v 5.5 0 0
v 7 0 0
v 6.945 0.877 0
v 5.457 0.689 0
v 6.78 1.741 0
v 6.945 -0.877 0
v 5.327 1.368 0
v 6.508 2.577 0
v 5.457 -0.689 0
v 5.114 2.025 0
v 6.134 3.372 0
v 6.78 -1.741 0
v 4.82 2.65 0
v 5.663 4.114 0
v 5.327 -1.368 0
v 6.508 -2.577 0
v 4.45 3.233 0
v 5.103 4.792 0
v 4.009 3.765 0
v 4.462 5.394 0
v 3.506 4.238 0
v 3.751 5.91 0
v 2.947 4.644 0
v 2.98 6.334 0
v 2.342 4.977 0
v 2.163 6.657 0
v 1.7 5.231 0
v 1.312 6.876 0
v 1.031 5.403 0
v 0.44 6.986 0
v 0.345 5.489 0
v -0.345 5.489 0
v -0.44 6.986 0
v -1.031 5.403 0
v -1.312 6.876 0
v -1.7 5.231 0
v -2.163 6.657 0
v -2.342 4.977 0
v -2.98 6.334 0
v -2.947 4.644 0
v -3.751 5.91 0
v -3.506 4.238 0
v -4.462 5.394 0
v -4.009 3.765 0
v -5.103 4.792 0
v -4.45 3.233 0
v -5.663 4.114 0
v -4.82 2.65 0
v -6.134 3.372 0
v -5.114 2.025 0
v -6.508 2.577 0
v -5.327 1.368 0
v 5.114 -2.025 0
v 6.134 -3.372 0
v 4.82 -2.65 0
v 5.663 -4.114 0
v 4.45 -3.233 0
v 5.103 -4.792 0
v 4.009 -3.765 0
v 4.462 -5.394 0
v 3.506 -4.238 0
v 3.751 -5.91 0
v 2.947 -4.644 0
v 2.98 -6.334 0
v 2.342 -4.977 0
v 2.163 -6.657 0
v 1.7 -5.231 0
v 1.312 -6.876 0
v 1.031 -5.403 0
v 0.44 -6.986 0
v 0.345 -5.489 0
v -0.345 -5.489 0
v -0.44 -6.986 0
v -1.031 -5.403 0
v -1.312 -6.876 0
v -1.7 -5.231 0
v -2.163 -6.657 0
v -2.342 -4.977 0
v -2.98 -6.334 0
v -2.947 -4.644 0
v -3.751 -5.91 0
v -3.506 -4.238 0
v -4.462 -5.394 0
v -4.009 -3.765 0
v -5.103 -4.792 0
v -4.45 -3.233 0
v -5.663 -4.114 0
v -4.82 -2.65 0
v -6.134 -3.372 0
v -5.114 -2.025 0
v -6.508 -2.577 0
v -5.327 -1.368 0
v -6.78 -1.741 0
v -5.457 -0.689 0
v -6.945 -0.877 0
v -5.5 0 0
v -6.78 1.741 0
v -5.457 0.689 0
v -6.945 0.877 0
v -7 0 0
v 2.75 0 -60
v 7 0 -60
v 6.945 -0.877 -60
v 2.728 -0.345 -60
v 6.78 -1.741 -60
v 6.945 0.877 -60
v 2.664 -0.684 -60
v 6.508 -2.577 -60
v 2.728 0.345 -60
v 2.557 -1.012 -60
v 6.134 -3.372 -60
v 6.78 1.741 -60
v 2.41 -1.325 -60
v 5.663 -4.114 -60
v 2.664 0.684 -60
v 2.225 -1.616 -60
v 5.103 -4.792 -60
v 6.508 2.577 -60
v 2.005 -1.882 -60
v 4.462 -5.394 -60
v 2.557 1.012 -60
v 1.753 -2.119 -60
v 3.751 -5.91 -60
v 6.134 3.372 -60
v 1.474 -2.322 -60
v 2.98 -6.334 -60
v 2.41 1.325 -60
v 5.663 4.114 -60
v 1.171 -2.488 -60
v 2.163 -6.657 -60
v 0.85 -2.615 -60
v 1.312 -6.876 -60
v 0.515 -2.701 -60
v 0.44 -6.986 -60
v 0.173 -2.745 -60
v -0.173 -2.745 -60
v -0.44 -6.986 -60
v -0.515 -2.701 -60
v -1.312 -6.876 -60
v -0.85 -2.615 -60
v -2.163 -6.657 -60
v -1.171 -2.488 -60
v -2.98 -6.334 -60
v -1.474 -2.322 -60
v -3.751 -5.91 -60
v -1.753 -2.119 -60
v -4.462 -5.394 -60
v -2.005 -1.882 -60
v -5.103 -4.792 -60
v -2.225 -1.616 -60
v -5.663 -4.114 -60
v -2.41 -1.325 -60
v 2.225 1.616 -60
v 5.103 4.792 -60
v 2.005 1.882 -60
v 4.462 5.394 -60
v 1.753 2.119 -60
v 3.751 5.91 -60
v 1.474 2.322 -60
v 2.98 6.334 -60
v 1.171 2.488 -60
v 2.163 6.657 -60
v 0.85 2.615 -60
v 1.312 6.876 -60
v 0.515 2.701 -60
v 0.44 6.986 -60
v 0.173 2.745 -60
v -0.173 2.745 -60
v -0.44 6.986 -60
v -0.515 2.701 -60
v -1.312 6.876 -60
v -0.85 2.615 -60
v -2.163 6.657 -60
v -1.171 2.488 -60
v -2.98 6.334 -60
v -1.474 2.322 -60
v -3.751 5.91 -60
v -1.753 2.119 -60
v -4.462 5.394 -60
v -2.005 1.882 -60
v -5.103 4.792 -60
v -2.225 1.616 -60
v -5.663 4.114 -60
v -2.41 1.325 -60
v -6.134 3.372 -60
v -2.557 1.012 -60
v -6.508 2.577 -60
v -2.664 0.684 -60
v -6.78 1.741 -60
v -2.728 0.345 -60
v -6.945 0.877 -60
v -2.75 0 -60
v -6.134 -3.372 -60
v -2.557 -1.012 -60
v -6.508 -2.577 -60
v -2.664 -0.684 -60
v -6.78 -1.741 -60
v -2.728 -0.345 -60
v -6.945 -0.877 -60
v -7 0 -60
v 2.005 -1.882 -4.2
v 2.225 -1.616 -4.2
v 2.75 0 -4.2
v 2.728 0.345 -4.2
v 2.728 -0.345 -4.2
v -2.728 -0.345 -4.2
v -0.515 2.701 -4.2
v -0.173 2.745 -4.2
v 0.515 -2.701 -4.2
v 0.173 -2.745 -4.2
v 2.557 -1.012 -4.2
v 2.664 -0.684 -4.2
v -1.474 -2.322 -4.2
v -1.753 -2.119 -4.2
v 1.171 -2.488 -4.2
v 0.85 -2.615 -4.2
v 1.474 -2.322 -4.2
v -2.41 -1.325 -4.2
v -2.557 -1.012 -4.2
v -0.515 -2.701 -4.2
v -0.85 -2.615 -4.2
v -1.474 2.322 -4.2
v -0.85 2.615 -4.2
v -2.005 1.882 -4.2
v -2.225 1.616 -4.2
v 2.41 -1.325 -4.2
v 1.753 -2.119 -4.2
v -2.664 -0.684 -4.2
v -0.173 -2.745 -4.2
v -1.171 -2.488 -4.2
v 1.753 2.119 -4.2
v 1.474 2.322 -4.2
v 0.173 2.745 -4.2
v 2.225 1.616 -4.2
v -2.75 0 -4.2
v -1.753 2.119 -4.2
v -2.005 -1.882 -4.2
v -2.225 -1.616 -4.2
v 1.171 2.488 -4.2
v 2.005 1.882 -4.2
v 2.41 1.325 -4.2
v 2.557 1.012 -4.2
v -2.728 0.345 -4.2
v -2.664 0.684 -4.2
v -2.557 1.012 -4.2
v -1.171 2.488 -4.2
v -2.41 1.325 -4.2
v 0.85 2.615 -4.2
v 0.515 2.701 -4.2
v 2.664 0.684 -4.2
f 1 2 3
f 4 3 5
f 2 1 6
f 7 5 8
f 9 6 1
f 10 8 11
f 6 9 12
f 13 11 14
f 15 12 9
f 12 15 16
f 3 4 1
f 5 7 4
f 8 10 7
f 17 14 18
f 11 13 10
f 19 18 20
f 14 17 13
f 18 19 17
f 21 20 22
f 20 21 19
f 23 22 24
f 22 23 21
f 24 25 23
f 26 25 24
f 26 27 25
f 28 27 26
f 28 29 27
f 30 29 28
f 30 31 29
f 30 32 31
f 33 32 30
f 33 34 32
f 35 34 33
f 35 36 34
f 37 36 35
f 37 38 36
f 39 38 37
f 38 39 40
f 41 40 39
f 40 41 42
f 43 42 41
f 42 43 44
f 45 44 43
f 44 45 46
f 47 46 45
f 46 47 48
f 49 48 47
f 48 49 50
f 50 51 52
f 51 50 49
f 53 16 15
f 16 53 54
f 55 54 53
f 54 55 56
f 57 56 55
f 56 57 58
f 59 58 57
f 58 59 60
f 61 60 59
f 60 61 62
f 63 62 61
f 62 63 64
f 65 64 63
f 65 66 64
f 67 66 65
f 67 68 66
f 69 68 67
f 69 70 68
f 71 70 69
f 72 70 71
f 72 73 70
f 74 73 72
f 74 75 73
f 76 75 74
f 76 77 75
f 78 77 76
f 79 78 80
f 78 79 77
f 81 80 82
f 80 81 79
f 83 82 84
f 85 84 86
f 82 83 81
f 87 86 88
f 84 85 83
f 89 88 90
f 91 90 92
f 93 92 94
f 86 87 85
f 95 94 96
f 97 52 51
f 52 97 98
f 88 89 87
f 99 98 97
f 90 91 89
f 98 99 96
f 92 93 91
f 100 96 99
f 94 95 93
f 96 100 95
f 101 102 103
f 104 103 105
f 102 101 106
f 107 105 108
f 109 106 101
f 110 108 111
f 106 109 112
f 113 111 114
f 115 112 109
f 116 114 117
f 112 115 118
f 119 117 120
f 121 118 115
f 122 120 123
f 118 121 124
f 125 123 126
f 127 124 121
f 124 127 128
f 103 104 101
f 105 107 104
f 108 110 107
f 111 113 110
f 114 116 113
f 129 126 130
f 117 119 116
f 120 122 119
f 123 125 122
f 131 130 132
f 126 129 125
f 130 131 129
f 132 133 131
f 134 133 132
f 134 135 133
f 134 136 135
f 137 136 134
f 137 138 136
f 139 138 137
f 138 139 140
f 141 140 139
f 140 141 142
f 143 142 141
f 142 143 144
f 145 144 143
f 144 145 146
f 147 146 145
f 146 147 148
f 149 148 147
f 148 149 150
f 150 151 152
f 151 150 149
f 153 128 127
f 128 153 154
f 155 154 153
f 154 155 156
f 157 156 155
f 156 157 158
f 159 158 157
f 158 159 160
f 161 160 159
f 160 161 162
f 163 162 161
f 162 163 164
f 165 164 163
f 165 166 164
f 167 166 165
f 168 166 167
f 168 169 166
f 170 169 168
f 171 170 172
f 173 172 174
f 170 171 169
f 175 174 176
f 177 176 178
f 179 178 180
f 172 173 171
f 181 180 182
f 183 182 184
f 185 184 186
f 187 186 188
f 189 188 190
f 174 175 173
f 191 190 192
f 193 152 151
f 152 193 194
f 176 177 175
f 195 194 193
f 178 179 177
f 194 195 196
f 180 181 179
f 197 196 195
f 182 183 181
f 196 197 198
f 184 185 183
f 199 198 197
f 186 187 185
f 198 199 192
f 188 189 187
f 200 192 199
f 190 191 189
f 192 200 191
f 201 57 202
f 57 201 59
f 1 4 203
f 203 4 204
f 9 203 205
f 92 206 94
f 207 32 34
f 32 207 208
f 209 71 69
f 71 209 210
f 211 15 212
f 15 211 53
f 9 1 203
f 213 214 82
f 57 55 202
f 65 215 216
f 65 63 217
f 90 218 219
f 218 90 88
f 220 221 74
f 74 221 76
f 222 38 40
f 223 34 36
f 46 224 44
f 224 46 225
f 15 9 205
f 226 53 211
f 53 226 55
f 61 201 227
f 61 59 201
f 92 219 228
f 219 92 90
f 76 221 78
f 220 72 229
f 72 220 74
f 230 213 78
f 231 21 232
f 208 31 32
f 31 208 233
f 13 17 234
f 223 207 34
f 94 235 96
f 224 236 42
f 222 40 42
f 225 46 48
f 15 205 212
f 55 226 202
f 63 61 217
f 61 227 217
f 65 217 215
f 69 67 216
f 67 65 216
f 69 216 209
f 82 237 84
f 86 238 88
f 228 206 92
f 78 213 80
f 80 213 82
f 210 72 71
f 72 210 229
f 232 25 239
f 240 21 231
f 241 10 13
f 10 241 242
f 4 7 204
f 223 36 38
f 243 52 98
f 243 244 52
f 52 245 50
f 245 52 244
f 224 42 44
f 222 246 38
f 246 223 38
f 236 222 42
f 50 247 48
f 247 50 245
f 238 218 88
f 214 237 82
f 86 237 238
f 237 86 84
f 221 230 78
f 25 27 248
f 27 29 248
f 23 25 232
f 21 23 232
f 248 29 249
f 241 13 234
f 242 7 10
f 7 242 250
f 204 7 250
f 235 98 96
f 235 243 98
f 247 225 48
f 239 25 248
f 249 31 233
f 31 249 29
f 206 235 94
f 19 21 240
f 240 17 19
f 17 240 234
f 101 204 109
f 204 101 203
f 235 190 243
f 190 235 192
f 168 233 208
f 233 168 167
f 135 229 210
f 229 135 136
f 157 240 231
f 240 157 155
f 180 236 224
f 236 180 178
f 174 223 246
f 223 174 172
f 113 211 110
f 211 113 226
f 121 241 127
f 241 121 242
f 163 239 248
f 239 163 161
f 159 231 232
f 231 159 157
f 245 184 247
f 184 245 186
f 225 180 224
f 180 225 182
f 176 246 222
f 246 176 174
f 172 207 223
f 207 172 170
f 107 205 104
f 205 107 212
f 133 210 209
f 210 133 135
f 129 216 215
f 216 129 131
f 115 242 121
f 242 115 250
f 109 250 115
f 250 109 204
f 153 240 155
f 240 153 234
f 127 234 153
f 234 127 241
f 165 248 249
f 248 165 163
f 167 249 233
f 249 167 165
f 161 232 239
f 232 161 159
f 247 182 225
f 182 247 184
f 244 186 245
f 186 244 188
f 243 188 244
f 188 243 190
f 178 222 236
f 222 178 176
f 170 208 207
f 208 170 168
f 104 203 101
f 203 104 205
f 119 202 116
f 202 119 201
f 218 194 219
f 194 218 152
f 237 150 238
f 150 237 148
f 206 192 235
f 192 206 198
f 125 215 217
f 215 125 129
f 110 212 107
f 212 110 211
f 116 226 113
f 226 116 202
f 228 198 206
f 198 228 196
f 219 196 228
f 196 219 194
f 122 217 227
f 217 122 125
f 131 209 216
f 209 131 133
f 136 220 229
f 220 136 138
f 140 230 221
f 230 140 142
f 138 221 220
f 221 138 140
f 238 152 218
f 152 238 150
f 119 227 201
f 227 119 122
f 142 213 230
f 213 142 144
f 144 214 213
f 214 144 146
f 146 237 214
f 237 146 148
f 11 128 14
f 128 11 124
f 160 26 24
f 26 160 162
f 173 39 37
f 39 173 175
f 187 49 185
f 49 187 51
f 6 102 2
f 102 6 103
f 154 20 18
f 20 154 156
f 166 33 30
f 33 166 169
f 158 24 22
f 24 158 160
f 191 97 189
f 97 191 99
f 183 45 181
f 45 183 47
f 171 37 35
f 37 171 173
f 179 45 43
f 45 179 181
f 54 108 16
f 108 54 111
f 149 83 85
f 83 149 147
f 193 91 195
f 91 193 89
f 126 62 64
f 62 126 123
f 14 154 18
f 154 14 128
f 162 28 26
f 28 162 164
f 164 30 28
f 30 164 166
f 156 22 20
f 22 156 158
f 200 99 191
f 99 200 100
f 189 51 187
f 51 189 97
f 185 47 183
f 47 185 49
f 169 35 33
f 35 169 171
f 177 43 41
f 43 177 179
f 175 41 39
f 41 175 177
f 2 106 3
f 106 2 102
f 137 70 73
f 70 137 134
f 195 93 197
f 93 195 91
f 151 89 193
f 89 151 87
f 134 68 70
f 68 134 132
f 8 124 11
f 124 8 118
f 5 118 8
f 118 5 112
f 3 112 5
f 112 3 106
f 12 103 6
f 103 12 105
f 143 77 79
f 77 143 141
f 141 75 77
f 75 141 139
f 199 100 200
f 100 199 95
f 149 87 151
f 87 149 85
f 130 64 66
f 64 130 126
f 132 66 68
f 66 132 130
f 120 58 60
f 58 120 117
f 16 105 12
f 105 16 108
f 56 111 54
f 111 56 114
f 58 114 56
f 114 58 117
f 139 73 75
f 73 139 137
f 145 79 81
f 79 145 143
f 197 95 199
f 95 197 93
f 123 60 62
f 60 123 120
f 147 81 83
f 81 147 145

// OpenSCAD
$fn = 50;


difference() {
	union() {
		translate(v = [0, 0, -60.0000000000]) {
			cylinder(h = 60, r = 7.0000000000);
		}
		cylinder(h = 0, r = 10.0000000000);
	}
	union() {
		translate(v = [0, 0, 0]) {
			rotate(a = [0, 0, 0]) {
				difference() {
					union() {
						#translate(v = [0, 0, -60.0000000000]) {
							cylinder(h = 60, r = 2.2500000000);
						}
						#translate(v = [0, 0, -4.2000000000]) {
							cylinder(h = 4.2000000000, r = 7.0000000000, r1 = 2.7500000000, r2 = 5.5000000000);
						}
						#translate(v = [0, 0, -60.0000000000]) {
							cylinder(h = 60, r = 2.7500000000);
						}
						#translate(v = [0, 0, -60.0000000000]) {
							cylinder(h = 60, r = 2.2500000000);
						}
					}
					union();
				}
			}
		}
	}
}
